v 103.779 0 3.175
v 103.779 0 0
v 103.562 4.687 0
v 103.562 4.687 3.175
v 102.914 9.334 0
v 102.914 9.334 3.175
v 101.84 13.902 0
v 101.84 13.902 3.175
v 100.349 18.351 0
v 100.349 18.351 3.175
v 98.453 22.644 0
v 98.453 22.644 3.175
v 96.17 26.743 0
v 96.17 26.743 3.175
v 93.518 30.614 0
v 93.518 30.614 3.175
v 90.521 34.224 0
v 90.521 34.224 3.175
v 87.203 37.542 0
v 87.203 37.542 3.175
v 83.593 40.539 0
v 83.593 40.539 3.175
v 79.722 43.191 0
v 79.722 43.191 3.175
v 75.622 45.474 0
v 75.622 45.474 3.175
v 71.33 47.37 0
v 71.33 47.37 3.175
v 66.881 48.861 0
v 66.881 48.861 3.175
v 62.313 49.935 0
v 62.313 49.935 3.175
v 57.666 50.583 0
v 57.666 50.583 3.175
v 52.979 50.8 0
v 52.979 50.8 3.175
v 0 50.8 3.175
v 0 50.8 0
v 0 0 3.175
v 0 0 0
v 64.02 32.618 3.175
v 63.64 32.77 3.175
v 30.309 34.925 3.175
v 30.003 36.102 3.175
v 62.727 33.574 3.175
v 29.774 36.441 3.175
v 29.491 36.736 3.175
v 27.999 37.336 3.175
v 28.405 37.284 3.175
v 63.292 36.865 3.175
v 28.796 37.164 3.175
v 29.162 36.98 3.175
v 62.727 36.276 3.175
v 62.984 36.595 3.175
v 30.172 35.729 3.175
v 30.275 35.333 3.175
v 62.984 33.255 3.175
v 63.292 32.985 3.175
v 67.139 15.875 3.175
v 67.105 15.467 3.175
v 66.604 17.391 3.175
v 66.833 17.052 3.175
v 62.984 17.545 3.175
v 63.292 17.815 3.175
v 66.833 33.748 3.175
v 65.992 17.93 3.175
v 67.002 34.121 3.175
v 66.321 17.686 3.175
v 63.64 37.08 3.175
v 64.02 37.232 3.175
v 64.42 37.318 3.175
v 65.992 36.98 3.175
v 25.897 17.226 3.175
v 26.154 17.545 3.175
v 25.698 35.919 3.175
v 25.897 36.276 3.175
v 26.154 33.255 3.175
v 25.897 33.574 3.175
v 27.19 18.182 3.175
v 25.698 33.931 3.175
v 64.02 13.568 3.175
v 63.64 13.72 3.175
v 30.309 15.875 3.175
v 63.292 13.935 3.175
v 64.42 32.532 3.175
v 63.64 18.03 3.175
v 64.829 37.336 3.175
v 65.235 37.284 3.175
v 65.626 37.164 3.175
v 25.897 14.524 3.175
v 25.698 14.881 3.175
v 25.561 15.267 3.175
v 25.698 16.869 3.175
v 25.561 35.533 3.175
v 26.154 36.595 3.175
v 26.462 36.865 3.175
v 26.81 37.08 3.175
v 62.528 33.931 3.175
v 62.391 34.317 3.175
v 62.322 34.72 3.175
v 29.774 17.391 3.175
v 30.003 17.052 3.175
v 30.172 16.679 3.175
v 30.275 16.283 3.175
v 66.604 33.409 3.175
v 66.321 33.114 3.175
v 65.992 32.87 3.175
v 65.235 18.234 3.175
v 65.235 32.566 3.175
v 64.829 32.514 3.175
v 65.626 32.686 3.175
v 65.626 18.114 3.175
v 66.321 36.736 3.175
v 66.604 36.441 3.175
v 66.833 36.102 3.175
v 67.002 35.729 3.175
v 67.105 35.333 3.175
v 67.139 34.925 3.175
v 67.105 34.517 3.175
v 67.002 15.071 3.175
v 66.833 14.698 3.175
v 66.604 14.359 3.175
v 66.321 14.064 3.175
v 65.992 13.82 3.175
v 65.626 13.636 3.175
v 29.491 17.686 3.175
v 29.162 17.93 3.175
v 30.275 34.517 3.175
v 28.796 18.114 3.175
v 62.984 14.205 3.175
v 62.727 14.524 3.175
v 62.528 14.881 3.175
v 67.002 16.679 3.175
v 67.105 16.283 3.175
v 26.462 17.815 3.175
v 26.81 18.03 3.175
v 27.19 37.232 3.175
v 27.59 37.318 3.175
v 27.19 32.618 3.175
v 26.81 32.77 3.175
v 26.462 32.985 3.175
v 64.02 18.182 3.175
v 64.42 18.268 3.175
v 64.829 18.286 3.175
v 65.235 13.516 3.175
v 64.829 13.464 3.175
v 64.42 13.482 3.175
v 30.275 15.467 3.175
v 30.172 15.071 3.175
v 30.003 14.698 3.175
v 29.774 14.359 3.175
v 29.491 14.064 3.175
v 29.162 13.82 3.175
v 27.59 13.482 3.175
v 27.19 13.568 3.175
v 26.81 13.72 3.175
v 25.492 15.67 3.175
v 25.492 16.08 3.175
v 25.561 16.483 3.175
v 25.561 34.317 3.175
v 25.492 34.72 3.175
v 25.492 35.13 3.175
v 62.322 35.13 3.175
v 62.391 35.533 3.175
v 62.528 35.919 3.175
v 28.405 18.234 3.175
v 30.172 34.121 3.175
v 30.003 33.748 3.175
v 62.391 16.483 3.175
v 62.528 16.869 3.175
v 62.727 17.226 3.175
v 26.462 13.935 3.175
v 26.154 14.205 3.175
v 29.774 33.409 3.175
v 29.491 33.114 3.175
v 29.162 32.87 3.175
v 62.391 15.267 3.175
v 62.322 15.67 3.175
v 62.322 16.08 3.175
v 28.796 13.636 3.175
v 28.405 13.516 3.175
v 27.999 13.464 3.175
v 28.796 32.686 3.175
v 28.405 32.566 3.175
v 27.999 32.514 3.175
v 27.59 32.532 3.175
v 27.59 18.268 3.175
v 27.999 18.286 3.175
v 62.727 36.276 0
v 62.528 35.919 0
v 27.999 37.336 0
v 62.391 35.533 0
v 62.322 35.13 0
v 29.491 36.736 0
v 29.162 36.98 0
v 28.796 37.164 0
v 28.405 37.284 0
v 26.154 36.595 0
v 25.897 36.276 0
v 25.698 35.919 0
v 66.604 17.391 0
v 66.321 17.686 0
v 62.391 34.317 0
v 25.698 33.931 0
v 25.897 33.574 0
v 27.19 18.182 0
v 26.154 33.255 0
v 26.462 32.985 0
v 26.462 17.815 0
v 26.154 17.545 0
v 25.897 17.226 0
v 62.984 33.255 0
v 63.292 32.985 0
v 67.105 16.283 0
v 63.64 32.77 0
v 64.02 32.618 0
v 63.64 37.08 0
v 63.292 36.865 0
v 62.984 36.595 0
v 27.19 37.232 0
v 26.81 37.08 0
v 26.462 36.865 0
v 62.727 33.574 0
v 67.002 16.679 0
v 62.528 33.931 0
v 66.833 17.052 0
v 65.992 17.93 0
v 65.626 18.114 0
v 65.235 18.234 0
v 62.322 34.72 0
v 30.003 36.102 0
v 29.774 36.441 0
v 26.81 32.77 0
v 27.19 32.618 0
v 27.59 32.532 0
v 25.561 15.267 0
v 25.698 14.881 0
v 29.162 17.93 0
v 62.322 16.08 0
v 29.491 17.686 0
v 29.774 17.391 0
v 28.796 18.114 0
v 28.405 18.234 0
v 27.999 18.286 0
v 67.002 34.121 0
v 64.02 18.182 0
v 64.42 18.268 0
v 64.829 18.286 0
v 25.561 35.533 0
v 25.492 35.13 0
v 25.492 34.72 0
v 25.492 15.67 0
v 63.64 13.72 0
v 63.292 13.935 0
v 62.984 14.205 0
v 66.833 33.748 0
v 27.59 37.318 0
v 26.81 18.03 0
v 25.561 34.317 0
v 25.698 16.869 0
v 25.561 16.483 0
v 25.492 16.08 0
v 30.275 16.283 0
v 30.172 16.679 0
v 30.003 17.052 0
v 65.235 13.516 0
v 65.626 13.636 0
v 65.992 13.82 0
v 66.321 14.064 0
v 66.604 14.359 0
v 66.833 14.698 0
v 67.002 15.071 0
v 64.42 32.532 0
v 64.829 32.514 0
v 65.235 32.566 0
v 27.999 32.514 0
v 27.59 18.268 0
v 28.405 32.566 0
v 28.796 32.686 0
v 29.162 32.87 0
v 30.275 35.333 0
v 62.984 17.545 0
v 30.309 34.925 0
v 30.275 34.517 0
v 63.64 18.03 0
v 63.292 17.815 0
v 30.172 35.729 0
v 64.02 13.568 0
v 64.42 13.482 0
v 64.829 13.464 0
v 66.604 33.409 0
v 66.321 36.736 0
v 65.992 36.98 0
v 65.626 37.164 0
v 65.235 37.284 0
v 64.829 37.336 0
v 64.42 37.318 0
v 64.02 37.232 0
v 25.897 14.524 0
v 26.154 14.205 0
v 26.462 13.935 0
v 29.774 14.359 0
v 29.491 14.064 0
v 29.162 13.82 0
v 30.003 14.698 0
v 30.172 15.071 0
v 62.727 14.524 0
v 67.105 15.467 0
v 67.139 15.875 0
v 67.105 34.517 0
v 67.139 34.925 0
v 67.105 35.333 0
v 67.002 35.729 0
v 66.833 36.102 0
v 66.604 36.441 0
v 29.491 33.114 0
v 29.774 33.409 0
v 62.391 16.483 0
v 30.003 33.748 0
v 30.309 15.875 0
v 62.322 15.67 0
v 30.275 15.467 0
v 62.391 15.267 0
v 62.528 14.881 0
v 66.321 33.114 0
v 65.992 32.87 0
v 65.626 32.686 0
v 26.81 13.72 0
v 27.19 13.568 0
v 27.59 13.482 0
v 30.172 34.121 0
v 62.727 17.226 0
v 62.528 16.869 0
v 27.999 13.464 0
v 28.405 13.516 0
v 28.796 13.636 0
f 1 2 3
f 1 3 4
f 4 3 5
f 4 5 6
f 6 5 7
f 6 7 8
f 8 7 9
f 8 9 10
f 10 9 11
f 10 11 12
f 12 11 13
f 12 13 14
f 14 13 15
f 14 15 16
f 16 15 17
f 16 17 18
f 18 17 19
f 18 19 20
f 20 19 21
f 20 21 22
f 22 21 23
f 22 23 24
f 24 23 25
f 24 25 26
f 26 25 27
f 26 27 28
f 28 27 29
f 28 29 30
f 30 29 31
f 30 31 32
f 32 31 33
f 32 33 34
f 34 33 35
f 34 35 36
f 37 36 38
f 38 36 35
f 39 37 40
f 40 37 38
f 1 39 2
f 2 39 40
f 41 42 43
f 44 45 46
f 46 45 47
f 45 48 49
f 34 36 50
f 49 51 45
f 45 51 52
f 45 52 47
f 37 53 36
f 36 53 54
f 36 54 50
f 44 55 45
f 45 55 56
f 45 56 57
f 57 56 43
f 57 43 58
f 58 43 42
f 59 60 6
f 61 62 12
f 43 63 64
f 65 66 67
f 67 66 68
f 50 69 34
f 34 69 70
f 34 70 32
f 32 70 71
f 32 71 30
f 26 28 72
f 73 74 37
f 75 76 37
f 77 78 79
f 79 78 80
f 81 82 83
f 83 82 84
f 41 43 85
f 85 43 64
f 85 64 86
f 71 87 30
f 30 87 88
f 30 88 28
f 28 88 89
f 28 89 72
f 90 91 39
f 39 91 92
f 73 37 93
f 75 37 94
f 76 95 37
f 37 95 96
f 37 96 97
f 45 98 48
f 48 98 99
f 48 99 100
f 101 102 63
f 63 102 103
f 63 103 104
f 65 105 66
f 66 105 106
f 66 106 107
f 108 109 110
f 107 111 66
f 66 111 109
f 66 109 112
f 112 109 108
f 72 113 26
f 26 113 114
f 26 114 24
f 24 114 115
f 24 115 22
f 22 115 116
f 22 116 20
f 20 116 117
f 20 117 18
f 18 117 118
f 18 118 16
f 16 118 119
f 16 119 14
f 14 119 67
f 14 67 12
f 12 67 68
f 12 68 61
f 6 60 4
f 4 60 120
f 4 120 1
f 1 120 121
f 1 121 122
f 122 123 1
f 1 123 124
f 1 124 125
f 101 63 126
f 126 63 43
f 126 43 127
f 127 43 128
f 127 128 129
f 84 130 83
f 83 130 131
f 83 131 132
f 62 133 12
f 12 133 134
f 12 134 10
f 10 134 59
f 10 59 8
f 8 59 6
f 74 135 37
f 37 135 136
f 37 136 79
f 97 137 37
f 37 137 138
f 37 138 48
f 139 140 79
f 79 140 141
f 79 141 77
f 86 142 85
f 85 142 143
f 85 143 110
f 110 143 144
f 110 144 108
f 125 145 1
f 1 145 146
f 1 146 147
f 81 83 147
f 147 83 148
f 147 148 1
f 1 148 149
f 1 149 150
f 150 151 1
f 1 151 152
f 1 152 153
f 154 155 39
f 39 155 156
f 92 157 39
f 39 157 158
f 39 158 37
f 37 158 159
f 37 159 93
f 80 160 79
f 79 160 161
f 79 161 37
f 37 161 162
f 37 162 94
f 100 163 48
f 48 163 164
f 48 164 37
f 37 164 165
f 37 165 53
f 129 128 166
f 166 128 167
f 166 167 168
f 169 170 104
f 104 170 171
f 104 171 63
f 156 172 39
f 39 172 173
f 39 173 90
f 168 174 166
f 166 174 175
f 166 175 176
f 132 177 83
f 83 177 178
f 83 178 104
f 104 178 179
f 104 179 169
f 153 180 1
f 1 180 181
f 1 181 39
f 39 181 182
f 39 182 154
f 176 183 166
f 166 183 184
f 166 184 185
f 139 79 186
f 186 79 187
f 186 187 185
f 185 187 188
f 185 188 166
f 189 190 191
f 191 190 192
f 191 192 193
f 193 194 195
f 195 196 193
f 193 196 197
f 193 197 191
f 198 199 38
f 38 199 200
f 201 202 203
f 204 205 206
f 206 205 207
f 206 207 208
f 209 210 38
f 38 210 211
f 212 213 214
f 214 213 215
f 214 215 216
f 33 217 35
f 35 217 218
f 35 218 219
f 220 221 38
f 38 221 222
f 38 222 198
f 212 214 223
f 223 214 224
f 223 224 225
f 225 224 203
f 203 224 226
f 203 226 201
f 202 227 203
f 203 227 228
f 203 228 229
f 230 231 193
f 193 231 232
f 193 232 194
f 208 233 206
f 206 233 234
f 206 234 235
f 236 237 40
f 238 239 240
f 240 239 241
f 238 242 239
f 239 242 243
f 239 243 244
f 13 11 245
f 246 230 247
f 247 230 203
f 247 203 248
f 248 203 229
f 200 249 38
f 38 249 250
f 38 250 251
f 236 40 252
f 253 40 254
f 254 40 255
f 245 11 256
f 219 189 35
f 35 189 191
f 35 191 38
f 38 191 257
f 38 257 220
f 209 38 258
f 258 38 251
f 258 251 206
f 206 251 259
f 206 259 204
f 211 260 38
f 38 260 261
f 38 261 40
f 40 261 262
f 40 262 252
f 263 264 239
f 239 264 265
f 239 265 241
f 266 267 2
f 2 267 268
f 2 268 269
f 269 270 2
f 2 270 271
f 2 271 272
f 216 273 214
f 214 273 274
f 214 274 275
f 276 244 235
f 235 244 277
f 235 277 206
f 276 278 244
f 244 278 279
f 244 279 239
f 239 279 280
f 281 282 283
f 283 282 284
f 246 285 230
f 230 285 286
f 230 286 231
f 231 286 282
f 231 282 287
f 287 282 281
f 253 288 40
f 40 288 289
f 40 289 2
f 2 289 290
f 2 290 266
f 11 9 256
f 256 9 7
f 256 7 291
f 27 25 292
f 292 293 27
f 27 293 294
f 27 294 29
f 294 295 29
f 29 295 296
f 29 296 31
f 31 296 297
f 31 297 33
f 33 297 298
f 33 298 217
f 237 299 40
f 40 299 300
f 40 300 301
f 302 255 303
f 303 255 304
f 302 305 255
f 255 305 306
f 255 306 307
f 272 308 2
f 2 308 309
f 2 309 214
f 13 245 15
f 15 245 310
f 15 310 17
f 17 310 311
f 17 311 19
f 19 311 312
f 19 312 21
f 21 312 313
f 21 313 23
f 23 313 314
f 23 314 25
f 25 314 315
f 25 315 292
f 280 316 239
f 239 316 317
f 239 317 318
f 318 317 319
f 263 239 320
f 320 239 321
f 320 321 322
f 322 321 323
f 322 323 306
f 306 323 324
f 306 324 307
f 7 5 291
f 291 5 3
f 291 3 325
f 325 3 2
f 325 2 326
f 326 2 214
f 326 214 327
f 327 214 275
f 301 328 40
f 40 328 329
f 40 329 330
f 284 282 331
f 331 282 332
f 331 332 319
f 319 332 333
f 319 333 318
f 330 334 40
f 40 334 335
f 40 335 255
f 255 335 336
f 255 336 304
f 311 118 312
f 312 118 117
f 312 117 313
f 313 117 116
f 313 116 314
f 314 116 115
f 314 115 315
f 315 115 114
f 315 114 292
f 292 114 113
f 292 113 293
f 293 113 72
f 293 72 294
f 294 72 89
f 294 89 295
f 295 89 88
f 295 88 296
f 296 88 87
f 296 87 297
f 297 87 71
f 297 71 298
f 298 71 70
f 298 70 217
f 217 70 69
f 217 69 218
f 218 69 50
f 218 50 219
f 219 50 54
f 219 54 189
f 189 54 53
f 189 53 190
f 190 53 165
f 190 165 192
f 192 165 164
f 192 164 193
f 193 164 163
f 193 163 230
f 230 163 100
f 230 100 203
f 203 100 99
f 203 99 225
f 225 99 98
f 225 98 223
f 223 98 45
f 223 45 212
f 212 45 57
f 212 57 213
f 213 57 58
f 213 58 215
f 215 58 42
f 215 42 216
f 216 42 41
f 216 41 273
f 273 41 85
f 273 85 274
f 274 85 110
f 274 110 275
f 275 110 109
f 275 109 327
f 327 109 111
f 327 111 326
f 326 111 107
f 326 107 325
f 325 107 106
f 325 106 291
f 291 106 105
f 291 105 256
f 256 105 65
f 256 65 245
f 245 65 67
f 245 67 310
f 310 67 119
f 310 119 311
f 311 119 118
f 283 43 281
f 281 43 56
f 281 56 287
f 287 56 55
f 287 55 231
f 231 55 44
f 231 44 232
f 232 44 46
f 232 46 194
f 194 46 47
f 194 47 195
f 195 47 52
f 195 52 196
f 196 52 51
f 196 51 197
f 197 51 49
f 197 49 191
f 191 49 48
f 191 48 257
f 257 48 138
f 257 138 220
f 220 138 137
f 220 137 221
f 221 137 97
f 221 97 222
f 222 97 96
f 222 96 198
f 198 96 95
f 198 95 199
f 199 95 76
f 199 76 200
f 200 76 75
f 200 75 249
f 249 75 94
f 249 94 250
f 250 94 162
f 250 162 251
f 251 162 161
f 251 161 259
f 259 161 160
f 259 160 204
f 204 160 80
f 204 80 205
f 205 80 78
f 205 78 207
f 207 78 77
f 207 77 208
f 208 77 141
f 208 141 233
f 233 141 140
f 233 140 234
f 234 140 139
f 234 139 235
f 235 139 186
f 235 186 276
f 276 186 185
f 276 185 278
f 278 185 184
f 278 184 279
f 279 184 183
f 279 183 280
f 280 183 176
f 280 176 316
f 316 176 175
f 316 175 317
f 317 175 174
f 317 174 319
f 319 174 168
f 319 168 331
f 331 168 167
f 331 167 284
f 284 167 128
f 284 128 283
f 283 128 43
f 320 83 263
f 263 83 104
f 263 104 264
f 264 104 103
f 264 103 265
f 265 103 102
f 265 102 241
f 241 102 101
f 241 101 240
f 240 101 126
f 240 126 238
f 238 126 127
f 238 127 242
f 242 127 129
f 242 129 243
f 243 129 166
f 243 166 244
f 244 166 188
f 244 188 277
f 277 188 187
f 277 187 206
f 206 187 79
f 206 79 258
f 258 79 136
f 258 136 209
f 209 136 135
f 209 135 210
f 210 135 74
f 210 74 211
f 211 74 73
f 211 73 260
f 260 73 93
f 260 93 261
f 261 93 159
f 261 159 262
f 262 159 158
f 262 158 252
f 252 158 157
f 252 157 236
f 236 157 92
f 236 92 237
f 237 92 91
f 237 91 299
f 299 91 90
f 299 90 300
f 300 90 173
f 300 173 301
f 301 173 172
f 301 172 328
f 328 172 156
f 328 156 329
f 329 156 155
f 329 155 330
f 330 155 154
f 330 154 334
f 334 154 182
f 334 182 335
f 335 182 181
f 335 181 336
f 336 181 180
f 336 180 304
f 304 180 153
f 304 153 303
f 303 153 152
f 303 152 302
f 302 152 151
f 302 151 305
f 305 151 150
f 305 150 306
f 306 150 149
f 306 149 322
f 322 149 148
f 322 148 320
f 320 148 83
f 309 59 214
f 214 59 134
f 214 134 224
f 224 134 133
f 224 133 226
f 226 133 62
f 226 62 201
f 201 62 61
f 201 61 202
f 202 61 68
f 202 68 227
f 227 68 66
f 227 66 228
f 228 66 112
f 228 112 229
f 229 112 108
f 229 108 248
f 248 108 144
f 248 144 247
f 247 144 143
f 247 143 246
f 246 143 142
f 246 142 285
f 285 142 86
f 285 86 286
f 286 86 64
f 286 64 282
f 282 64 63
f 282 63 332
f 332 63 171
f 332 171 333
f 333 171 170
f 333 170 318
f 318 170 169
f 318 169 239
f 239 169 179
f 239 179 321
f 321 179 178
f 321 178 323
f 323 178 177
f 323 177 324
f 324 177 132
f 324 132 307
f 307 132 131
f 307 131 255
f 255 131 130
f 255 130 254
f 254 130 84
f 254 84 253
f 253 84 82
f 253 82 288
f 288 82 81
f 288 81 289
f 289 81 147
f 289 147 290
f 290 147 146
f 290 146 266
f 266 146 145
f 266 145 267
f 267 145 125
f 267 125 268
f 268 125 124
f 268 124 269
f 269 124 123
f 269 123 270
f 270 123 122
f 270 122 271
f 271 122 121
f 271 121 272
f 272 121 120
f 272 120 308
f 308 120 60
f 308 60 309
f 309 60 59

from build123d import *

# Parameters (mm, degrees)
BOSS_EXTRUDE1_DEPTH     = 3.175
SKETCH3_R               = 2.413
CUT_EXTRUDE1_DEPTH      = 1
CUT_EXTRUDE1_DEPTH_BACK = 4.175


with BuildPart() as part:
    # Sketch1 → Boss-Extrude1 (new body)
    with BuildSketch(Plane.XY):
        with BuildLine():
            Line((0, 50.8), (0, 0))
            Line((0, 0), (103.778975516, 0))
            ThreePointArc((103.778975516, 0), (88.9, 35.921024484), (52.978975516, 50.8))
            Line((52.978975516, 50.8), (0, 50.8))
        make_face()
    extrude(amount=BOSS_EXTRUDE1_DEPTH)

    # Sketch3 → Cut-Extrude1 (cut, two sides)
    with BuildSketch(Plane.XY.offset(3.175)) as cut_extrude1_sk:
        with Locations((64.726475516, 34.925)):
            Circle(SKETCH3_R)
        with Locations((27.896475516, 34.925)):
            Circle(SKETCH3_R)
        with Locations((27.896475516, 15.875)):
            Circle(SKETCH3_R)
        with Locations((64.726475516, 15.875)):
            Circle(SKETCH3_R)
    extrude(amount=CUT_EXTRUDE1_DEPTH, mode=Mode.SUBTRACT)
    extrude(cut_extrude1_sk.sketch, amount=-CUT_EXTRUDE1_DEPTH_BACK, mode=Mode.SUBTRACT)


solid = part.part
